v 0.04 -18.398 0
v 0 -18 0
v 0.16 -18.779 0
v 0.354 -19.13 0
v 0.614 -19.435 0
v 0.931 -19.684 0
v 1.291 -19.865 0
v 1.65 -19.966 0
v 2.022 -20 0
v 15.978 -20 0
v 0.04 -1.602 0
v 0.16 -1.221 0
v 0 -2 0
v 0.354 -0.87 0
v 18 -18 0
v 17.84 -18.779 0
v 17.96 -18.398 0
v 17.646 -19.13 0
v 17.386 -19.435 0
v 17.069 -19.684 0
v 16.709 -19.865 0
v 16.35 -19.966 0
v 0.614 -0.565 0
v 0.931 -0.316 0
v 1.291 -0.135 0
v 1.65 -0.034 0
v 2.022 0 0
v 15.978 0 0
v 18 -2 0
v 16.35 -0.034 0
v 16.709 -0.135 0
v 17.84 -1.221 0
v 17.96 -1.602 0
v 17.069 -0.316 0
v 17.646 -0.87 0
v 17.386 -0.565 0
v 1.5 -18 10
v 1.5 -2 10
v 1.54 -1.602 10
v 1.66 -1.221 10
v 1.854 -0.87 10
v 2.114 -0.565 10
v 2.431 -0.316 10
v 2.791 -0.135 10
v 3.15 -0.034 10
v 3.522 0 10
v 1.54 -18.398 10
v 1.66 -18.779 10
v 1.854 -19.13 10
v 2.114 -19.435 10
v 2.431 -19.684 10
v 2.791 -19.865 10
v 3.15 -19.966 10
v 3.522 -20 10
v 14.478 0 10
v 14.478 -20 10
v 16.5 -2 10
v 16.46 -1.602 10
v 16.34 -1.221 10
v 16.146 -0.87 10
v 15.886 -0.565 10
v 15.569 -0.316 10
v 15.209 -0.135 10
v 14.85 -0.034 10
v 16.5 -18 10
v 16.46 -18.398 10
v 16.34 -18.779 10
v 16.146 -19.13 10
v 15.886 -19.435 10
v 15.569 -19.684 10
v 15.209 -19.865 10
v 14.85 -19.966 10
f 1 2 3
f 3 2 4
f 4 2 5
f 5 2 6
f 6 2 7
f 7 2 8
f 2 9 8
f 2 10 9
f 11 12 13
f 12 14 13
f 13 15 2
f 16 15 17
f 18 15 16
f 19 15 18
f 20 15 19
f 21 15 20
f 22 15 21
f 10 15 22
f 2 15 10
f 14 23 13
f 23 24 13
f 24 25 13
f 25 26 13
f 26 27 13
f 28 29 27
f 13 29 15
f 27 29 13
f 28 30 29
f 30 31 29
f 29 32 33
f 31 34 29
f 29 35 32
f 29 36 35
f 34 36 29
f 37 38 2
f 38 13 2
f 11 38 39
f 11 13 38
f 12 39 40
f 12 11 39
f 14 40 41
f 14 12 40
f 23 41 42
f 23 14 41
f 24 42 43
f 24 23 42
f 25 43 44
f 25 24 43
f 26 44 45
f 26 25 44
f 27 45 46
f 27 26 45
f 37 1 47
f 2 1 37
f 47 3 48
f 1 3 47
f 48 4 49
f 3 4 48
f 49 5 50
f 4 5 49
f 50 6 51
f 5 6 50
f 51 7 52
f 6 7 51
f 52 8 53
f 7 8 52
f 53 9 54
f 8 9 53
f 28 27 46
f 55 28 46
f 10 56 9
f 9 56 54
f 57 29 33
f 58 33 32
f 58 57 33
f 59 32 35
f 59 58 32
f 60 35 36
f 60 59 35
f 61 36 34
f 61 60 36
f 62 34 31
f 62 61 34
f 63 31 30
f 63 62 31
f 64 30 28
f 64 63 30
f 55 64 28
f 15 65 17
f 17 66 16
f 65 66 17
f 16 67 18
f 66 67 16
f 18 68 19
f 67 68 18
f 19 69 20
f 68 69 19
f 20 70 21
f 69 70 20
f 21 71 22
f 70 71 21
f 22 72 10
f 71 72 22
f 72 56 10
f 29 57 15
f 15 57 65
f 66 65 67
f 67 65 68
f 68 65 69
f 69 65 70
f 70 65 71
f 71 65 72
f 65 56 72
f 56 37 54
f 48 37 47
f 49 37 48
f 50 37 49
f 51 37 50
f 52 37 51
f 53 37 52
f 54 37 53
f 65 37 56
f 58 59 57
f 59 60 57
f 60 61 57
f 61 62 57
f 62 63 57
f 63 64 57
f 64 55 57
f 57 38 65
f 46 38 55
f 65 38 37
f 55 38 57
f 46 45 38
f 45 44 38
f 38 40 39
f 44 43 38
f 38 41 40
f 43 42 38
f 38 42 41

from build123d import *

# Parameters (mm, degrees)
PAD_DEPTH = 20
FILLET_R  = 2


with BuildPart() as part:
    # Sketch → Pad (new body)
    with BuildSketch(Plane.XZ):
        Polygon((0, 0), (18, 0), (16.5, 10), (1.5, 10), align=None)
    extrude(amount=PAD_DEPTH)

    # Fillet
    fillet_edges = [part.edges().sort_by_distance(p)[0] for p in [
        (0.75, 0, 5),
        (0.75, -20, 5),
        (17.25, -20, 5),
        (17.25, 0, 5),
    ]]
    fillet(fillet_edges, radius=FILLET_R)


solid = part.part
